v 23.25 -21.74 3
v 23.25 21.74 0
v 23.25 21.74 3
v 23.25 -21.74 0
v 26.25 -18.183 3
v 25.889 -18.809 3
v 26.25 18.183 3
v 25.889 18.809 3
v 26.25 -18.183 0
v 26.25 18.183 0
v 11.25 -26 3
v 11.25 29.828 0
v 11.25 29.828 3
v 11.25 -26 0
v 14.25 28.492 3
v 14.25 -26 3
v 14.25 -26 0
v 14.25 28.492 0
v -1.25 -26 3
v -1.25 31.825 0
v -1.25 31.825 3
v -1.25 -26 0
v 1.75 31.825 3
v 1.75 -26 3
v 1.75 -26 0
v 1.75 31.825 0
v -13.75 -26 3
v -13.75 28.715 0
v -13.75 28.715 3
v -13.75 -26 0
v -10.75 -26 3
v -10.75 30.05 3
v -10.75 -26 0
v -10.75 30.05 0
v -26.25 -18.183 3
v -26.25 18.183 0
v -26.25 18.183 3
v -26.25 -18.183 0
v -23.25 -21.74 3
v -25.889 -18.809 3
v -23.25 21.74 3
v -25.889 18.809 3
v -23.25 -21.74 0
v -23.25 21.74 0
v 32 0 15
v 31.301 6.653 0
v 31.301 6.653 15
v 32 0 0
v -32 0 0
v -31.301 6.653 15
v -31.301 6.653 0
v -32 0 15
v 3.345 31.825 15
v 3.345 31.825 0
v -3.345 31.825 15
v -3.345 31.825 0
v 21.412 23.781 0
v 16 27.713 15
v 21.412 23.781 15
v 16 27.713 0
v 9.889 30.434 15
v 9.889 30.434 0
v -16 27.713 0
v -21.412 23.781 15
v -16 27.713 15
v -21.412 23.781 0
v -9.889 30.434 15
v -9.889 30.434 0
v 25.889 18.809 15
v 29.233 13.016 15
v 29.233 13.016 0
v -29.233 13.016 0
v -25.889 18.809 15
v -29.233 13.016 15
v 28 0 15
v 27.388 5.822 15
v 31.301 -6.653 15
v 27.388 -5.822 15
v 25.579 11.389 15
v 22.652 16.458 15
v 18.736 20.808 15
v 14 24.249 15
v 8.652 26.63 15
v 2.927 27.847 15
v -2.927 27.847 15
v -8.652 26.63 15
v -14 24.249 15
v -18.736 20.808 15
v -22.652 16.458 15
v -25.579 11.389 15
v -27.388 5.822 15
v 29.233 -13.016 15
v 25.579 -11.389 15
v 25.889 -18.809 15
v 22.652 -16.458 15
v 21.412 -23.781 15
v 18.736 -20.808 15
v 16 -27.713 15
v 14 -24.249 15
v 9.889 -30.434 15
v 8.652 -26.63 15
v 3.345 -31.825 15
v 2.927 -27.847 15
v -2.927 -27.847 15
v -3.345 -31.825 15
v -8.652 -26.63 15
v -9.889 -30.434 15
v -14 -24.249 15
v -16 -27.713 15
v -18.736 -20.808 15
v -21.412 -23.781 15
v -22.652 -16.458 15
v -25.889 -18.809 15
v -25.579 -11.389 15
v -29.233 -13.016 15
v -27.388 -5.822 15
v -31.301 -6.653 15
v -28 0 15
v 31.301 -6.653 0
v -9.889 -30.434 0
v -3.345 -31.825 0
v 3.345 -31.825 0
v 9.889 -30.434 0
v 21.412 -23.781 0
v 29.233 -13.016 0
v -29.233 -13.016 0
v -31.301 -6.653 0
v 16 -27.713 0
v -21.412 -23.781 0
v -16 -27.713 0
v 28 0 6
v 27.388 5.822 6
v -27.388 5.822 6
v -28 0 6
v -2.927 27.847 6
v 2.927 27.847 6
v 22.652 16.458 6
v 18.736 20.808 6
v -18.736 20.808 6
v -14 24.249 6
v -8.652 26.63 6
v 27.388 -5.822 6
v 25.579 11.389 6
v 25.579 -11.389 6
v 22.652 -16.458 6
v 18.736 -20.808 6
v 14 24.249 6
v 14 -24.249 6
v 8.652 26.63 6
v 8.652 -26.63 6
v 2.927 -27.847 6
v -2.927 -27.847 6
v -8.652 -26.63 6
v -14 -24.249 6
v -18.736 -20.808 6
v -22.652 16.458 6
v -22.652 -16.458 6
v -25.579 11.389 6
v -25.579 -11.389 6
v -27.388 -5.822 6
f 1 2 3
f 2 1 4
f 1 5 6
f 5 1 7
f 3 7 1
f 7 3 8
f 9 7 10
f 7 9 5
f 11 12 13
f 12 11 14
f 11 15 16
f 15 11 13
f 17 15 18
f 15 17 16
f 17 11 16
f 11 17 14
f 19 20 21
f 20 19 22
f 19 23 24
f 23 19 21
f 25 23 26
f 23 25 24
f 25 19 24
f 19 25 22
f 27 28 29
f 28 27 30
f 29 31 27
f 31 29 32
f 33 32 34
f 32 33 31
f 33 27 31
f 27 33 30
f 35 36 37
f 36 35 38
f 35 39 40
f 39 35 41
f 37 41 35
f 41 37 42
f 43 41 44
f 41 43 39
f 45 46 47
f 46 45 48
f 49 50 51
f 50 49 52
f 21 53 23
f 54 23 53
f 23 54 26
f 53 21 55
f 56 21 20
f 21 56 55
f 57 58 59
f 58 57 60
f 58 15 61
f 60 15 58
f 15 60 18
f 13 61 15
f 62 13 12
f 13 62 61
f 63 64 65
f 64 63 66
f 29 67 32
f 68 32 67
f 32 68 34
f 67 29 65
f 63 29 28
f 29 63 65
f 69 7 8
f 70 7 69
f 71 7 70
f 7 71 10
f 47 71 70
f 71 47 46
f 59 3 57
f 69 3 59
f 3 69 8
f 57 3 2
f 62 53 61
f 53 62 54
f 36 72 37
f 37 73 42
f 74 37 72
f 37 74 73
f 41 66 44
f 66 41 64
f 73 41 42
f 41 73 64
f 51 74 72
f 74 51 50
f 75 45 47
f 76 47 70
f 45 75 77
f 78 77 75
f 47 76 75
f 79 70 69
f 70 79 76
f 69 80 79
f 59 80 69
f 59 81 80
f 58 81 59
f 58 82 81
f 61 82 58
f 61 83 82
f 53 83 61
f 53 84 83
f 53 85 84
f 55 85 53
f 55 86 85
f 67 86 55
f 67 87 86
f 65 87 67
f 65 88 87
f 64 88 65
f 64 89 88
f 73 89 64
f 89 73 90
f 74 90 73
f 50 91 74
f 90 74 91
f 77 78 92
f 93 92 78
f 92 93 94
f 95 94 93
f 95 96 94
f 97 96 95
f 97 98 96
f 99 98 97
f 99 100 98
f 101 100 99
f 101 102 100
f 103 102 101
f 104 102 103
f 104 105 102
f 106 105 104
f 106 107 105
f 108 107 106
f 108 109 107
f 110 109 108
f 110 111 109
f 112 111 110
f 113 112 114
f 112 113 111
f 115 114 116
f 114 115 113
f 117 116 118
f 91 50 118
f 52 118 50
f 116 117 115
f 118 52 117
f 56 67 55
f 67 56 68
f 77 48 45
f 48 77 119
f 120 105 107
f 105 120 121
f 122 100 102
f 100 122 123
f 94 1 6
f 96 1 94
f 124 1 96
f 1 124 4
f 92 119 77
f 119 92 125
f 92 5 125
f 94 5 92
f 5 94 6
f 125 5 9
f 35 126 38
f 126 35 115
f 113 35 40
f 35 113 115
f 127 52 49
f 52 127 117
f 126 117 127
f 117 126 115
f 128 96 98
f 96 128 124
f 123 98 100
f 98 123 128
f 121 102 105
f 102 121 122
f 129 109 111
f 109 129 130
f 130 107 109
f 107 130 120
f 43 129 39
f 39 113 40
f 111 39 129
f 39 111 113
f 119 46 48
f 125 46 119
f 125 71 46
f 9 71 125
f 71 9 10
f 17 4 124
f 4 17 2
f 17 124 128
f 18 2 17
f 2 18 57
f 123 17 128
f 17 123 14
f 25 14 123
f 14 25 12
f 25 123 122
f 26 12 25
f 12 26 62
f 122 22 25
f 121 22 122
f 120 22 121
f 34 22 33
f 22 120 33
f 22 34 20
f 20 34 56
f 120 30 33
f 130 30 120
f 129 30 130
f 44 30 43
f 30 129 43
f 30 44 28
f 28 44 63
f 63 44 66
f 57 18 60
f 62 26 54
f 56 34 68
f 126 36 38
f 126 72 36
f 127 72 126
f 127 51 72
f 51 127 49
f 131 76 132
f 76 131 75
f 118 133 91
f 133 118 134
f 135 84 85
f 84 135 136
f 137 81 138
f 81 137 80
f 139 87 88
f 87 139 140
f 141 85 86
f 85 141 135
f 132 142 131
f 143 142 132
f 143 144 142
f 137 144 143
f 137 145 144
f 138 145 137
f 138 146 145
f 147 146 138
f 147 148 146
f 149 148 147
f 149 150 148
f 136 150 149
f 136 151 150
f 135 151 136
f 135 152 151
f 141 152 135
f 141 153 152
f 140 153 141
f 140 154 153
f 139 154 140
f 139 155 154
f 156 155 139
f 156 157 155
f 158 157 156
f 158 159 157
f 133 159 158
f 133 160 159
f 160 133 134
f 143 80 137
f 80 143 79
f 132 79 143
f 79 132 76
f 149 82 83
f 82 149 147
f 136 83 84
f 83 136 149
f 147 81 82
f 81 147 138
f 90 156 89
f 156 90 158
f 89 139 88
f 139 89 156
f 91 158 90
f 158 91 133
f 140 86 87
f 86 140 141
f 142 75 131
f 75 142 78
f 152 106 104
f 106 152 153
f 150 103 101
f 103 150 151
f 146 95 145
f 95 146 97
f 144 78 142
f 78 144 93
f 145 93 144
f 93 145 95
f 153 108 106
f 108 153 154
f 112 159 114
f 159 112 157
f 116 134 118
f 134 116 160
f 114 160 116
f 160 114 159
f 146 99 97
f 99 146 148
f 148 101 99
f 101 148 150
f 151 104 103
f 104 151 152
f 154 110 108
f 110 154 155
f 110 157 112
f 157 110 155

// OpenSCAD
tamp_radius=27;
tamp_depth=9;
tamp_tolerance=1;
stand_radius=tamp_radius+5;
stand_height=15;

groove_width=3;
groove_height=3;
groove_distance=10;
groove_depth=10;

groove_initial_x=(stand_radius-12); // 10 is the opening of the well to the groove
groove_initial_y=-(stand_radius-6); // 8 is the opening from the groove to the back of the well
groove_x_offset=12.5;

show_guides=false;

module tamp_stand(guide_shift) {
    difference(){
        // outer stand
        cylinder(h=stand_height,r=stand_radius);

        // hole for the tamp
        translate([0,0,stand_height-tamp_depth])
            cylinder(h=tamp_depth+10,r=tamp_radius+tamp_tolerance);

        // grooves for the breville top
        // y sets the depth the grooves, reamining space is solid for the back opening
        //   depth of the opening (back side of the platform) - stand_radius = y offset
        // x sets the edge to the first groove
        //   depth of the opening (left side of the platform) - stand_radius = x offset
        // each successive groove, needs to be groove_depth away on the x-axis
        translate([groove_initial_x+guide_shift,groove_initial_y,-1]) {
            cube([groove_width,100, groove_height+1]);
            translate([-15+groove_width,0,0]) cube([groove_width, 100, groove_height+1]);
            translate([-27.5+groove_width,0,0]) cube([groove_width,100, groove_height+1]);
            translate([-40+groove_width,0,0]) cube([groove_width,100, groove_height+1]);
            translate([-52.5+groove_width,0,0]) cube([groove_width,100, groove_height+1]);
        }
    }
}

module tamp_guides(guide_shift) {

    color("red")
    translate([groove_initial_x+guide_shift,groove_initial_y,-2]) {
        cube([groove_width,100, groove_height]);
        translate([-15+groove_width,0,0]) cube([groove_width, 100, groove_height]);
        translate([-27.5+groove_width,0,0]) cube([groove_width,100, groove_height]);
        translate([-40+groove_width,0,0]) cube([groove_width,100, groove_height]);
        translate([-52.5+groove_width,0,0]) cube([groove_width,100, groove_height]);
    }

    translate([guide_shift,0,0])
    {
        // back spacer
        color("green") translate([-stand_radius*2,-stand_radius,-1]) cube([100,6,1]);
        
        // between different grooves (go from left side to right)
        color("orange") {
            translate([8,0,-3]) {
                cube([15,5,1]);
                translate([-12.5,5,0]) cube([27.5, 5,1]);
                translate([-25,10,0]) cube([40,5,1]);
                translate([-37.5,15,0]) cube([52.5,5,1]);
            }
        }
    }

    // these should not move

    // shifted for side edge
    //color("blue") translate([stand_radius-10,-stand_radius,-1]) cube([10,100,1]);

    // grooves centered on stand
    color("blue") translate([stand_radius-5.75,-stand_radius,-1]) cube([5.75,100,1]);
    color("blue") translate([-stand_radius,-stand_radius,-1]) cube([5.75,100,1]);

}

shift=groove_width/2+1.75;

// normal print
tamp_stand(shift);
// if (show_guides) tamp_guides(shift);


// difference() {
//     tamp_stand(shift);
//     translate([-stand_radius,0,-1]) cube([stand_radius*2,stand_radius,21]);
//     translate([-stand_radius,-stand_radius,5]) cube([stand_radius*2,stand_radius*2,20]);    
//     // color("orange") translate([-stand_radius,-stand_radius/2,-1]) cube([stand_radius*2,stand_radius*1.5,20]);
// }
